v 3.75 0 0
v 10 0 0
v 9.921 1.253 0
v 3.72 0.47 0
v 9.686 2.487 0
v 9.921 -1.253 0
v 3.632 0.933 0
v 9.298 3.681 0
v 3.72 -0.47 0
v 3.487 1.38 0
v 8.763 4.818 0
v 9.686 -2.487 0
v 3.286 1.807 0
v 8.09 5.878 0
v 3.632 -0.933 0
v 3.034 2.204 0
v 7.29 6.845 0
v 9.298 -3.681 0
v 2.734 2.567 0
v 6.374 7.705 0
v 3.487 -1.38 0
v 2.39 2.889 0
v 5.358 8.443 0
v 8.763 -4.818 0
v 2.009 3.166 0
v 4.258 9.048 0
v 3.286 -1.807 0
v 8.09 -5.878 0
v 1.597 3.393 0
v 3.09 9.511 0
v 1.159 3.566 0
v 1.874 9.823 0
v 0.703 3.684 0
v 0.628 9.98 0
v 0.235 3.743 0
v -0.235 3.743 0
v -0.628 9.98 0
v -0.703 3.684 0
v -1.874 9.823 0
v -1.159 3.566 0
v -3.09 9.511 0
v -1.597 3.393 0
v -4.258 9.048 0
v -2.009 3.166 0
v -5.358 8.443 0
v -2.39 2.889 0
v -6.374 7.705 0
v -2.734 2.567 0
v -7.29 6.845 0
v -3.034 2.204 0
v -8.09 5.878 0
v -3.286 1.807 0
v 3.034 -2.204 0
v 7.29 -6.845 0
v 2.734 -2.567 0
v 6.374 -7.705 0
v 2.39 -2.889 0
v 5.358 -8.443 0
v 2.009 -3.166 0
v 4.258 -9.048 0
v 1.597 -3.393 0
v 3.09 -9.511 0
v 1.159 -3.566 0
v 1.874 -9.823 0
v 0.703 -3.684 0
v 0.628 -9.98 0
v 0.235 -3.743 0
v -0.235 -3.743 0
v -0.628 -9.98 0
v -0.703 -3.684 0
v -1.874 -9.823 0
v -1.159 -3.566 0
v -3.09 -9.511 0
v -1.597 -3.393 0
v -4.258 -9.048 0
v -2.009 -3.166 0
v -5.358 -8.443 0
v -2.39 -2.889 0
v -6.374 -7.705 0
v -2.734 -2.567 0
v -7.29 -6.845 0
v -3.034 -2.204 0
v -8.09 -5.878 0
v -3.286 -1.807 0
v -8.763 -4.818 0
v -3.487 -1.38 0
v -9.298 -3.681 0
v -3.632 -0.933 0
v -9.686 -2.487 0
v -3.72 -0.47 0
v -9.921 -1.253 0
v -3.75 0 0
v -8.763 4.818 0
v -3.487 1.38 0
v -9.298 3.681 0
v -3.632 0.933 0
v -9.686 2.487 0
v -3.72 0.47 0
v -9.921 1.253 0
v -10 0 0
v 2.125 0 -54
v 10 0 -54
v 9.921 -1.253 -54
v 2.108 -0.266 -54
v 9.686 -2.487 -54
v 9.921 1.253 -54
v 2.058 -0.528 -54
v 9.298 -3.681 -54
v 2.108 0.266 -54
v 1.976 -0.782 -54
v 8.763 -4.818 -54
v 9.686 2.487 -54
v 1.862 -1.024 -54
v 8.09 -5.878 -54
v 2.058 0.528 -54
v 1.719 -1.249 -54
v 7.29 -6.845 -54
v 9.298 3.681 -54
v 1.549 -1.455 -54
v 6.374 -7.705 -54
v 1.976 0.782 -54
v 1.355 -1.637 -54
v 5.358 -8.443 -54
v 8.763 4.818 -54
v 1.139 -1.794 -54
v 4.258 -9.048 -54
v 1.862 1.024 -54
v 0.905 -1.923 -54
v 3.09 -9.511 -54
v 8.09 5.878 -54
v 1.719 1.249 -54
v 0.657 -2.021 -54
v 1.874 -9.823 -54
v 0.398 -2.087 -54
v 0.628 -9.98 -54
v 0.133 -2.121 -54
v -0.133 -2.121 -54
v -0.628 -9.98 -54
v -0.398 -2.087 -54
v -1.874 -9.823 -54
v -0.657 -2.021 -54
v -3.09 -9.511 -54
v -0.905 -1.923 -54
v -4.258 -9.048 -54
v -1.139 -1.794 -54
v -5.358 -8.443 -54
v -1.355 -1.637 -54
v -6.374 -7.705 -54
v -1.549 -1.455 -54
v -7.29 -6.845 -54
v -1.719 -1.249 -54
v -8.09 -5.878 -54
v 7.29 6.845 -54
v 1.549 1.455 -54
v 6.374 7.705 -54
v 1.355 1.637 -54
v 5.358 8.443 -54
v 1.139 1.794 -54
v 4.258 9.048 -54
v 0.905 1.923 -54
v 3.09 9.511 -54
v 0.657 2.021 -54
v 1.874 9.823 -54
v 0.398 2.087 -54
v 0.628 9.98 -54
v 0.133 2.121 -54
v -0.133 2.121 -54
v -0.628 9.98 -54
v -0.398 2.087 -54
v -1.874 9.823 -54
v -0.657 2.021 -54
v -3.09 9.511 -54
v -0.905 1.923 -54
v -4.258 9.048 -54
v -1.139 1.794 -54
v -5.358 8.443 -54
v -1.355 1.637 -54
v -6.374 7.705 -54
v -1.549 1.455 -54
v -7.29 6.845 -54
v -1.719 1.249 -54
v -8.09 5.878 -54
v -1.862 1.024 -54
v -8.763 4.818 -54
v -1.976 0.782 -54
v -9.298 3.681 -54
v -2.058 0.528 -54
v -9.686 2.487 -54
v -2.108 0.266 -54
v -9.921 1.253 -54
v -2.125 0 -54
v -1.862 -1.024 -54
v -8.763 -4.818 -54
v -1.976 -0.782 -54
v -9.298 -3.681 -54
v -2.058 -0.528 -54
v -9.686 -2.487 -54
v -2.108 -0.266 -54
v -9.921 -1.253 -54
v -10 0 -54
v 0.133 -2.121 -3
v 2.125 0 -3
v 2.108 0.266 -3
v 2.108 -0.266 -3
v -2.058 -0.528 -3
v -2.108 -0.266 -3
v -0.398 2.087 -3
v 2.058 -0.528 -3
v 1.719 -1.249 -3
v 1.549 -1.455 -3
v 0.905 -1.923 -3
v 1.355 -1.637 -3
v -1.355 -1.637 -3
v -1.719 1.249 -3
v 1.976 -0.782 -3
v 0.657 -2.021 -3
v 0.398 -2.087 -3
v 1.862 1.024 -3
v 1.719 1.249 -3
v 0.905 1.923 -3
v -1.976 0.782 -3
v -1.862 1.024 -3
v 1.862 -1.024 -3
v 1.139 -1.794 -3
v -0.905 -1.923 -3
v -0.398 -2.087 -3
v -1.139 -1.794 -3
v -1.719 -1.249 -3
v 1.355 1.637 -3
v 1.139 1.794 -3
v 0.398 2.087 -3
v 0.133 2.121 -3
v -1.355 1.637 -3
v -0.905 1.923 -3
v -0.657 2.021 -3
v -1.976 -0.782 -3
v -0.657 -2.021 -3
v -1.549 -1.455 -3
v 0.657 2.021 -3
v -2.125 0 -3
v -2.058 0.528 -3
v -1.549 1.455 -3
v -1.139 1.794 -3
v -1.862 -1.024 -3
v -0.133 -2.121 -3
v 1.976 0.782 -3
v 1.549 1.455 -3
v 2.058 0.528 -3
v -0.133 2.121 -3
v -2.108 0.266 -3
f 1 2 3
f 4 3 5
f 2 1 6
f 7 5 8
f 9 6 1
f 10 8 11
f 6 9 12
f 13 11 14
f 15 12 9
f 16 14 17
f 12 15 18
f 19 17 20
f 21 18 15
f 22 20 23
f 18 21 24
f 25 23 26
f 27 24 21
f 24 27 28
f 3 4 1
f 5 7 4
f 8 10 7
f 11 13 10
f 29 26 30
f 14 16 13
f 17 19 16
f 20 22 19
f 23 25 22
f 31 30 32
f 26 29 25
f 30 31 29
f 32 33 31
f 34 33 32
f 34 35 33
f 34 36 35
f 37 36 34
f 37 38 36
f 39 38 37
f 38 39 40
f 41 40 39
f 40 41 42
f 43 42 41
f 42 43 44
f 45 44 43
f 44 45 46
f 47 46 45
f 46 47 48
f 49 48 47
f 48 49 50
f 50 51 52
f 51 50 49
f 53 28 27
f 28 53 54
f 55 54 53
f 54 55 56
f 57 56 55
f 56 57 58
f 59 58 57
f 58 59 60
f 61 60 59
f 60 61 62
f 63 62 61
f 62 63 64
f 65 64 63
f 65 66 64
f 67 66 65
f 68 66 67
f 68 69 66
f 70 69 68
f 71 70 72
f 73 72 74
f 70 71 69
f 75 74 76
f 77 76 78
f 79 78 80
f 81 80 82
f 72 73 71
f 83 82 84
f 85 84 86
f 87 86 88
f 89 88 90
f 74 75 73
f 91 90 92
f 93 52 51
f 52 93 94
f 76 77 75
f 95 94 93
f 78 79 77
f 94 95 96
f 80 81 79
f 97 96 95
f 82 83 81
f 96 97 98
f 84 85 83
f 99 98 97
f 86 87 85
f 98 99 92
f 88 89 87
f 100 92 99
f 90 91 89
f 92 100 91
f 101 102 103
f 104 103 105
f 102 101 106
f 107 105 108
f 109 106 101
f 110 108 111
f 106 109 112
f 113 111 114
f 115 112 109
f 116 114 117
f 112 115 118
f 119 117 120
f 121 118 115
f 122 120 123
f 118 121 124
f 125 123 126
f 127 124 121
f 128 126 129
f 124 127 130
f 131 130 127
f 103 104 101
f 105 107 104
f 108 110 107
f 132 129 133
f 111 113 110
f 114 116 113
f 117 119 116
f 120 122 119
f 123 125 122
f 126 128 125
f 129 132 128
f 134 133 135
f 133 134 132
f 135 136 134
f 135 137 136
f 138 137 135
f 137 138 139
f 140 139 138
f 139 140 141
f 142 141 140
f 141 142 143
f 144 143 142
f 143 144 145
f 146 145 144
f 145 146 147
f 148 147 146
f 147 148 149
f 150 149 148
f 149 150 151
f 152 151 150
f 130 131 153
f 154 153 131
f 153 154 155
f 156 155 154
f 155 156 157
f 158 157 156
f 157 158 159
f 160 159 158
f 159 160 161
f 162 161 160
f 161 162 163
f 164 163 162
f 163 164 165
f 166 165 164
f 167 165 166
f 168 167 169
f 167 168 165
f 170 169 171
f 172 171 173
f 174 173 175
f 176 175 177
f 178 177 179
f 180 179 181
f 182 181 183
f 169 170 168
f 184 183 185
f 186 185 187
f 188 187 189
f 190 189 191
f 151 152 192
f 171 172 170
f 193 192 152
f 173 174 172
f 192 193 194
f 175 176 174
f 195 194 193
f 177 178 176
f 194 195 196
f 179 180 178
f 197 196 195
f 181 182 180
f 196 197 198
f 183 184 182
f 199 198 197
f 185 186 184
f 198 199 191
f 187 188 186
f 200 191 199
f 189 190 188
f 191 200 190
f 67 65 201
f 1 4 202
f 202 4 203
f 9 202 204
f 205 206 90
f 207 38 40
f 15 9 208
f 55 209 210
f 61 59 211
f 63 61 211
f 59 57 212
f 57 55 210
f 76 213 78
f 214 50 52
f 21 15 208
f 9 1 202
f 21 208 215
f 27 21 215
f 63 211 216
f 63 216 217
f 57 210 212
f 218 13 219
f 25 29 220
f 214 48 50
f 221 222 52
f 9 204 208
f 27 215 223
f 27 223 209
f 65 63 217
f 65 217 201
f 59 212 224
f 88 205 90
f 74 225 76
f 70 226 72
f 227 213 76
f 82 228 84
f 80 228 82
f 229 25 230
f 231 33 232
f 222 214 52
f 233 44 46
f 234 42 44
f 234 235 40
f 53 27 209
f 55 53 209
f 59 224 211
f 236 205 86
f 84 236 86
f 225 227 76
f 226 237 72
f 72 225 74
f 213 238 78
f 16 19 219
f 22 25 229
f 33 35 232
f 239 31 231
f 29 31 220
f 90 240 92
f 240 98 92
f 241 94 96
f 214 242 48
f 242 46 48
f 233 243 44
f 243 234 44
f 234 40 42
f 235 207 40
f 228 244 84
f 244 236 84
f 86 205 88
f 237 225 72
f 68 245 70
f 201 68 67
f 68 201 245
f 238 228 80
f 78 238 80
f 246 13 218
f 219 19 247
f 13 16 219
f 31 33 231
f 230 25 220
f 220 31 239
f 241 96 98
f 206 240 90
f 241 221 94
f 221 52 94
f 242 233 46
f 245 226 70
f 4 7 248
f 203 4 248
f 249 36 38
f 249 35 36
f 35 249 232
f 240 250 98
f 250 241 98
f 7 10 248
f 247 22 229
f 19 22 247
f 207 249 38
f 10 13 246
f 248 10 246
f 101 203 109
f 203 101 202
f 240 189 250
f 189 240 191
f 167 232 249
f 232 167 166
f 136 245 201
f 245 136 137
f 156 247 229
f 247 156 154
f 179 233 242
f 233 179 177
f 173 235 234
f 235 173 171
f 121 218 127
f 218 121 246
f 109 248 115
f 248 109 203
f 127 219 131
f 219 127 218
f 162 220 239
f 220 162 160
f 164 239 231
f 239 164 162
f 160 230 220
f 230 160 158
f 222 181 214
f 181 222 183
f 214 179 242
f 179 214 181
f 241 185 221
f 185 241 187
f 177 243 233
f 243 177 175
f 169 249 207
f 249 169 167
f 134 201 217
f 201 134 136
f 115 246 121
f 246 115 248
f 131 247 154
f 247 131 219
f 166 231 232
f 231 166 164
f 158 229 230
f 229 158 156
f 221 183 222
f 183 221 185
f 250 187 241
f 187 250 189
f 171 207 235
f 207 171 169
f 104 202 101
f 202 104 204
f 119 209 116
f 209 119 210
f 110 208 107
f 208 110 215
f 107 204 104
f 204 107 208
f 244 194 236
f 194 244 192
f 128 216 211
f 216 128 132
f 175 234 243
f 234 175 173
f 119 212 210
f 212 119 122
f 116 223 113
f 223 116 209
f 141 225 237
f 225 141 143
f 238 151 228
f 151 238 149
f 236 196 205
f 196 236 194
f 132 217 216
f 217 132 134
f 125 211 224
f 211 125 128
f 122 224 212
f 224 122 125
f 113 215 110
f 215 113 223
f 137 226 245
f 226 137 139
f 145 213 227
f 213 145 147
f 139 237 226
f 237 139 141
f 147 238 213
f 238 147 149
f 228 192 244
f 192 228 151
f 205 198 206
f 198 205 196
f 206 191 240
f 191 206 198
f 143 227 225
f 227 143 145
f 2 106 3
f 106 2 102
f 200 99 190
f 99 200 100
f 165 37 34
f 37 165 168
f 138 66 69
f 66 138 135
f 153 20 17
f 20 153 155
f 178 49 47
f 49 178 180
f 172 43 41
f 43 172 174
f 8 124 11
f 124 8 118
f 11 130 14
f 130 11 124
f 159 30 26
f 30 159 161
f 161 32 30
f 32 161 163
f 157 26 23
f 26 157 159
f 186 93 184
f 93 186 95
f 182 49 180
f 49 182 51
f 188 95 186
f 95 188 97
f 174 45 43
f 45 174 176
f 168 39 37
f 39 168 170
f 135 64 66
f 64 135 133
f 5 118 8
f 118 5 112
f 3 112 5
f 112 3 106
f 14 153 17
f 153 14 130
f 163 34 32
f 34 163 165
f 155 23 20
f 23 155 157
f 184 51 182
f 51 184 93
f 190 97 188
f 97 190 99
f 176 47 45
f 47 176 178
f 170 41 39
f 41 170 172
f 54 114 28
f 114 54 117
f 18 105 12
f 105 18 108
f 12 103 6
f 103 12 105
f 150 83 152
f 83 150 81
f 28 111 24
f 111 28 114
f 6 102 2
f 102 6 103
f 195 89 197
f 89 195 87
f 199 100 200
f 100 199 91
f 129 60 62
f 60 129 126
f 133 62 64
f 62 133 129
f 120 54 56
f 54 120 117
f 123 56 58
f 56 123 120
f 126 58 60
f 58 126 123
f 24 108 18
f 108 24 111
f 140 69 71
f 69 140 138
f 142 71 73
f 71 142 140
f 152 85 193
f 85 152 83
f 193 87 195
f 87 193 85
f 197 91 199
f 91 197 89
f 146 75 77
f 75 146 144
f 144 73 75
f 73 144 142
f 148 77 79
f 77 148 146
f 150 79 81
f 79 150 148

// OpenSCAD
$fn = 50;


difference() {
	union() {
		translate(v = [0, 0, -54.0000000000]) {
			cylinder(h = 54, r = 10.0000000000);
		}
		cylinder(h = 0, r = 19.0000000000);
	}
	union() {
		translate(v = [0, 0, 0]) {
			rotate(a = [0, 0, 0]) {
				difference() {
					union() {
						#translate(v = [0, 0, -54.0000000000]) {
							cylinder(h = 54, r = 2.0000000000);
						}
						#translate(v = [0, 0, -3]) {
							cylinder(h = 3, r = 10.0000000000, r1 = 2.1250000000, r2 = 3.7500000000);
						}
						#translate(v = [0, 0, -54.0000000000]) {
							cylinder(h = 54, r = 2.1250000000);
						}
						#translate(v = [0, 0, -54.0000000000]) {
							cylinder(h = 54, r = 2.0000000000);
						}
					}
					union();
				}
			}
		}
	}
}
